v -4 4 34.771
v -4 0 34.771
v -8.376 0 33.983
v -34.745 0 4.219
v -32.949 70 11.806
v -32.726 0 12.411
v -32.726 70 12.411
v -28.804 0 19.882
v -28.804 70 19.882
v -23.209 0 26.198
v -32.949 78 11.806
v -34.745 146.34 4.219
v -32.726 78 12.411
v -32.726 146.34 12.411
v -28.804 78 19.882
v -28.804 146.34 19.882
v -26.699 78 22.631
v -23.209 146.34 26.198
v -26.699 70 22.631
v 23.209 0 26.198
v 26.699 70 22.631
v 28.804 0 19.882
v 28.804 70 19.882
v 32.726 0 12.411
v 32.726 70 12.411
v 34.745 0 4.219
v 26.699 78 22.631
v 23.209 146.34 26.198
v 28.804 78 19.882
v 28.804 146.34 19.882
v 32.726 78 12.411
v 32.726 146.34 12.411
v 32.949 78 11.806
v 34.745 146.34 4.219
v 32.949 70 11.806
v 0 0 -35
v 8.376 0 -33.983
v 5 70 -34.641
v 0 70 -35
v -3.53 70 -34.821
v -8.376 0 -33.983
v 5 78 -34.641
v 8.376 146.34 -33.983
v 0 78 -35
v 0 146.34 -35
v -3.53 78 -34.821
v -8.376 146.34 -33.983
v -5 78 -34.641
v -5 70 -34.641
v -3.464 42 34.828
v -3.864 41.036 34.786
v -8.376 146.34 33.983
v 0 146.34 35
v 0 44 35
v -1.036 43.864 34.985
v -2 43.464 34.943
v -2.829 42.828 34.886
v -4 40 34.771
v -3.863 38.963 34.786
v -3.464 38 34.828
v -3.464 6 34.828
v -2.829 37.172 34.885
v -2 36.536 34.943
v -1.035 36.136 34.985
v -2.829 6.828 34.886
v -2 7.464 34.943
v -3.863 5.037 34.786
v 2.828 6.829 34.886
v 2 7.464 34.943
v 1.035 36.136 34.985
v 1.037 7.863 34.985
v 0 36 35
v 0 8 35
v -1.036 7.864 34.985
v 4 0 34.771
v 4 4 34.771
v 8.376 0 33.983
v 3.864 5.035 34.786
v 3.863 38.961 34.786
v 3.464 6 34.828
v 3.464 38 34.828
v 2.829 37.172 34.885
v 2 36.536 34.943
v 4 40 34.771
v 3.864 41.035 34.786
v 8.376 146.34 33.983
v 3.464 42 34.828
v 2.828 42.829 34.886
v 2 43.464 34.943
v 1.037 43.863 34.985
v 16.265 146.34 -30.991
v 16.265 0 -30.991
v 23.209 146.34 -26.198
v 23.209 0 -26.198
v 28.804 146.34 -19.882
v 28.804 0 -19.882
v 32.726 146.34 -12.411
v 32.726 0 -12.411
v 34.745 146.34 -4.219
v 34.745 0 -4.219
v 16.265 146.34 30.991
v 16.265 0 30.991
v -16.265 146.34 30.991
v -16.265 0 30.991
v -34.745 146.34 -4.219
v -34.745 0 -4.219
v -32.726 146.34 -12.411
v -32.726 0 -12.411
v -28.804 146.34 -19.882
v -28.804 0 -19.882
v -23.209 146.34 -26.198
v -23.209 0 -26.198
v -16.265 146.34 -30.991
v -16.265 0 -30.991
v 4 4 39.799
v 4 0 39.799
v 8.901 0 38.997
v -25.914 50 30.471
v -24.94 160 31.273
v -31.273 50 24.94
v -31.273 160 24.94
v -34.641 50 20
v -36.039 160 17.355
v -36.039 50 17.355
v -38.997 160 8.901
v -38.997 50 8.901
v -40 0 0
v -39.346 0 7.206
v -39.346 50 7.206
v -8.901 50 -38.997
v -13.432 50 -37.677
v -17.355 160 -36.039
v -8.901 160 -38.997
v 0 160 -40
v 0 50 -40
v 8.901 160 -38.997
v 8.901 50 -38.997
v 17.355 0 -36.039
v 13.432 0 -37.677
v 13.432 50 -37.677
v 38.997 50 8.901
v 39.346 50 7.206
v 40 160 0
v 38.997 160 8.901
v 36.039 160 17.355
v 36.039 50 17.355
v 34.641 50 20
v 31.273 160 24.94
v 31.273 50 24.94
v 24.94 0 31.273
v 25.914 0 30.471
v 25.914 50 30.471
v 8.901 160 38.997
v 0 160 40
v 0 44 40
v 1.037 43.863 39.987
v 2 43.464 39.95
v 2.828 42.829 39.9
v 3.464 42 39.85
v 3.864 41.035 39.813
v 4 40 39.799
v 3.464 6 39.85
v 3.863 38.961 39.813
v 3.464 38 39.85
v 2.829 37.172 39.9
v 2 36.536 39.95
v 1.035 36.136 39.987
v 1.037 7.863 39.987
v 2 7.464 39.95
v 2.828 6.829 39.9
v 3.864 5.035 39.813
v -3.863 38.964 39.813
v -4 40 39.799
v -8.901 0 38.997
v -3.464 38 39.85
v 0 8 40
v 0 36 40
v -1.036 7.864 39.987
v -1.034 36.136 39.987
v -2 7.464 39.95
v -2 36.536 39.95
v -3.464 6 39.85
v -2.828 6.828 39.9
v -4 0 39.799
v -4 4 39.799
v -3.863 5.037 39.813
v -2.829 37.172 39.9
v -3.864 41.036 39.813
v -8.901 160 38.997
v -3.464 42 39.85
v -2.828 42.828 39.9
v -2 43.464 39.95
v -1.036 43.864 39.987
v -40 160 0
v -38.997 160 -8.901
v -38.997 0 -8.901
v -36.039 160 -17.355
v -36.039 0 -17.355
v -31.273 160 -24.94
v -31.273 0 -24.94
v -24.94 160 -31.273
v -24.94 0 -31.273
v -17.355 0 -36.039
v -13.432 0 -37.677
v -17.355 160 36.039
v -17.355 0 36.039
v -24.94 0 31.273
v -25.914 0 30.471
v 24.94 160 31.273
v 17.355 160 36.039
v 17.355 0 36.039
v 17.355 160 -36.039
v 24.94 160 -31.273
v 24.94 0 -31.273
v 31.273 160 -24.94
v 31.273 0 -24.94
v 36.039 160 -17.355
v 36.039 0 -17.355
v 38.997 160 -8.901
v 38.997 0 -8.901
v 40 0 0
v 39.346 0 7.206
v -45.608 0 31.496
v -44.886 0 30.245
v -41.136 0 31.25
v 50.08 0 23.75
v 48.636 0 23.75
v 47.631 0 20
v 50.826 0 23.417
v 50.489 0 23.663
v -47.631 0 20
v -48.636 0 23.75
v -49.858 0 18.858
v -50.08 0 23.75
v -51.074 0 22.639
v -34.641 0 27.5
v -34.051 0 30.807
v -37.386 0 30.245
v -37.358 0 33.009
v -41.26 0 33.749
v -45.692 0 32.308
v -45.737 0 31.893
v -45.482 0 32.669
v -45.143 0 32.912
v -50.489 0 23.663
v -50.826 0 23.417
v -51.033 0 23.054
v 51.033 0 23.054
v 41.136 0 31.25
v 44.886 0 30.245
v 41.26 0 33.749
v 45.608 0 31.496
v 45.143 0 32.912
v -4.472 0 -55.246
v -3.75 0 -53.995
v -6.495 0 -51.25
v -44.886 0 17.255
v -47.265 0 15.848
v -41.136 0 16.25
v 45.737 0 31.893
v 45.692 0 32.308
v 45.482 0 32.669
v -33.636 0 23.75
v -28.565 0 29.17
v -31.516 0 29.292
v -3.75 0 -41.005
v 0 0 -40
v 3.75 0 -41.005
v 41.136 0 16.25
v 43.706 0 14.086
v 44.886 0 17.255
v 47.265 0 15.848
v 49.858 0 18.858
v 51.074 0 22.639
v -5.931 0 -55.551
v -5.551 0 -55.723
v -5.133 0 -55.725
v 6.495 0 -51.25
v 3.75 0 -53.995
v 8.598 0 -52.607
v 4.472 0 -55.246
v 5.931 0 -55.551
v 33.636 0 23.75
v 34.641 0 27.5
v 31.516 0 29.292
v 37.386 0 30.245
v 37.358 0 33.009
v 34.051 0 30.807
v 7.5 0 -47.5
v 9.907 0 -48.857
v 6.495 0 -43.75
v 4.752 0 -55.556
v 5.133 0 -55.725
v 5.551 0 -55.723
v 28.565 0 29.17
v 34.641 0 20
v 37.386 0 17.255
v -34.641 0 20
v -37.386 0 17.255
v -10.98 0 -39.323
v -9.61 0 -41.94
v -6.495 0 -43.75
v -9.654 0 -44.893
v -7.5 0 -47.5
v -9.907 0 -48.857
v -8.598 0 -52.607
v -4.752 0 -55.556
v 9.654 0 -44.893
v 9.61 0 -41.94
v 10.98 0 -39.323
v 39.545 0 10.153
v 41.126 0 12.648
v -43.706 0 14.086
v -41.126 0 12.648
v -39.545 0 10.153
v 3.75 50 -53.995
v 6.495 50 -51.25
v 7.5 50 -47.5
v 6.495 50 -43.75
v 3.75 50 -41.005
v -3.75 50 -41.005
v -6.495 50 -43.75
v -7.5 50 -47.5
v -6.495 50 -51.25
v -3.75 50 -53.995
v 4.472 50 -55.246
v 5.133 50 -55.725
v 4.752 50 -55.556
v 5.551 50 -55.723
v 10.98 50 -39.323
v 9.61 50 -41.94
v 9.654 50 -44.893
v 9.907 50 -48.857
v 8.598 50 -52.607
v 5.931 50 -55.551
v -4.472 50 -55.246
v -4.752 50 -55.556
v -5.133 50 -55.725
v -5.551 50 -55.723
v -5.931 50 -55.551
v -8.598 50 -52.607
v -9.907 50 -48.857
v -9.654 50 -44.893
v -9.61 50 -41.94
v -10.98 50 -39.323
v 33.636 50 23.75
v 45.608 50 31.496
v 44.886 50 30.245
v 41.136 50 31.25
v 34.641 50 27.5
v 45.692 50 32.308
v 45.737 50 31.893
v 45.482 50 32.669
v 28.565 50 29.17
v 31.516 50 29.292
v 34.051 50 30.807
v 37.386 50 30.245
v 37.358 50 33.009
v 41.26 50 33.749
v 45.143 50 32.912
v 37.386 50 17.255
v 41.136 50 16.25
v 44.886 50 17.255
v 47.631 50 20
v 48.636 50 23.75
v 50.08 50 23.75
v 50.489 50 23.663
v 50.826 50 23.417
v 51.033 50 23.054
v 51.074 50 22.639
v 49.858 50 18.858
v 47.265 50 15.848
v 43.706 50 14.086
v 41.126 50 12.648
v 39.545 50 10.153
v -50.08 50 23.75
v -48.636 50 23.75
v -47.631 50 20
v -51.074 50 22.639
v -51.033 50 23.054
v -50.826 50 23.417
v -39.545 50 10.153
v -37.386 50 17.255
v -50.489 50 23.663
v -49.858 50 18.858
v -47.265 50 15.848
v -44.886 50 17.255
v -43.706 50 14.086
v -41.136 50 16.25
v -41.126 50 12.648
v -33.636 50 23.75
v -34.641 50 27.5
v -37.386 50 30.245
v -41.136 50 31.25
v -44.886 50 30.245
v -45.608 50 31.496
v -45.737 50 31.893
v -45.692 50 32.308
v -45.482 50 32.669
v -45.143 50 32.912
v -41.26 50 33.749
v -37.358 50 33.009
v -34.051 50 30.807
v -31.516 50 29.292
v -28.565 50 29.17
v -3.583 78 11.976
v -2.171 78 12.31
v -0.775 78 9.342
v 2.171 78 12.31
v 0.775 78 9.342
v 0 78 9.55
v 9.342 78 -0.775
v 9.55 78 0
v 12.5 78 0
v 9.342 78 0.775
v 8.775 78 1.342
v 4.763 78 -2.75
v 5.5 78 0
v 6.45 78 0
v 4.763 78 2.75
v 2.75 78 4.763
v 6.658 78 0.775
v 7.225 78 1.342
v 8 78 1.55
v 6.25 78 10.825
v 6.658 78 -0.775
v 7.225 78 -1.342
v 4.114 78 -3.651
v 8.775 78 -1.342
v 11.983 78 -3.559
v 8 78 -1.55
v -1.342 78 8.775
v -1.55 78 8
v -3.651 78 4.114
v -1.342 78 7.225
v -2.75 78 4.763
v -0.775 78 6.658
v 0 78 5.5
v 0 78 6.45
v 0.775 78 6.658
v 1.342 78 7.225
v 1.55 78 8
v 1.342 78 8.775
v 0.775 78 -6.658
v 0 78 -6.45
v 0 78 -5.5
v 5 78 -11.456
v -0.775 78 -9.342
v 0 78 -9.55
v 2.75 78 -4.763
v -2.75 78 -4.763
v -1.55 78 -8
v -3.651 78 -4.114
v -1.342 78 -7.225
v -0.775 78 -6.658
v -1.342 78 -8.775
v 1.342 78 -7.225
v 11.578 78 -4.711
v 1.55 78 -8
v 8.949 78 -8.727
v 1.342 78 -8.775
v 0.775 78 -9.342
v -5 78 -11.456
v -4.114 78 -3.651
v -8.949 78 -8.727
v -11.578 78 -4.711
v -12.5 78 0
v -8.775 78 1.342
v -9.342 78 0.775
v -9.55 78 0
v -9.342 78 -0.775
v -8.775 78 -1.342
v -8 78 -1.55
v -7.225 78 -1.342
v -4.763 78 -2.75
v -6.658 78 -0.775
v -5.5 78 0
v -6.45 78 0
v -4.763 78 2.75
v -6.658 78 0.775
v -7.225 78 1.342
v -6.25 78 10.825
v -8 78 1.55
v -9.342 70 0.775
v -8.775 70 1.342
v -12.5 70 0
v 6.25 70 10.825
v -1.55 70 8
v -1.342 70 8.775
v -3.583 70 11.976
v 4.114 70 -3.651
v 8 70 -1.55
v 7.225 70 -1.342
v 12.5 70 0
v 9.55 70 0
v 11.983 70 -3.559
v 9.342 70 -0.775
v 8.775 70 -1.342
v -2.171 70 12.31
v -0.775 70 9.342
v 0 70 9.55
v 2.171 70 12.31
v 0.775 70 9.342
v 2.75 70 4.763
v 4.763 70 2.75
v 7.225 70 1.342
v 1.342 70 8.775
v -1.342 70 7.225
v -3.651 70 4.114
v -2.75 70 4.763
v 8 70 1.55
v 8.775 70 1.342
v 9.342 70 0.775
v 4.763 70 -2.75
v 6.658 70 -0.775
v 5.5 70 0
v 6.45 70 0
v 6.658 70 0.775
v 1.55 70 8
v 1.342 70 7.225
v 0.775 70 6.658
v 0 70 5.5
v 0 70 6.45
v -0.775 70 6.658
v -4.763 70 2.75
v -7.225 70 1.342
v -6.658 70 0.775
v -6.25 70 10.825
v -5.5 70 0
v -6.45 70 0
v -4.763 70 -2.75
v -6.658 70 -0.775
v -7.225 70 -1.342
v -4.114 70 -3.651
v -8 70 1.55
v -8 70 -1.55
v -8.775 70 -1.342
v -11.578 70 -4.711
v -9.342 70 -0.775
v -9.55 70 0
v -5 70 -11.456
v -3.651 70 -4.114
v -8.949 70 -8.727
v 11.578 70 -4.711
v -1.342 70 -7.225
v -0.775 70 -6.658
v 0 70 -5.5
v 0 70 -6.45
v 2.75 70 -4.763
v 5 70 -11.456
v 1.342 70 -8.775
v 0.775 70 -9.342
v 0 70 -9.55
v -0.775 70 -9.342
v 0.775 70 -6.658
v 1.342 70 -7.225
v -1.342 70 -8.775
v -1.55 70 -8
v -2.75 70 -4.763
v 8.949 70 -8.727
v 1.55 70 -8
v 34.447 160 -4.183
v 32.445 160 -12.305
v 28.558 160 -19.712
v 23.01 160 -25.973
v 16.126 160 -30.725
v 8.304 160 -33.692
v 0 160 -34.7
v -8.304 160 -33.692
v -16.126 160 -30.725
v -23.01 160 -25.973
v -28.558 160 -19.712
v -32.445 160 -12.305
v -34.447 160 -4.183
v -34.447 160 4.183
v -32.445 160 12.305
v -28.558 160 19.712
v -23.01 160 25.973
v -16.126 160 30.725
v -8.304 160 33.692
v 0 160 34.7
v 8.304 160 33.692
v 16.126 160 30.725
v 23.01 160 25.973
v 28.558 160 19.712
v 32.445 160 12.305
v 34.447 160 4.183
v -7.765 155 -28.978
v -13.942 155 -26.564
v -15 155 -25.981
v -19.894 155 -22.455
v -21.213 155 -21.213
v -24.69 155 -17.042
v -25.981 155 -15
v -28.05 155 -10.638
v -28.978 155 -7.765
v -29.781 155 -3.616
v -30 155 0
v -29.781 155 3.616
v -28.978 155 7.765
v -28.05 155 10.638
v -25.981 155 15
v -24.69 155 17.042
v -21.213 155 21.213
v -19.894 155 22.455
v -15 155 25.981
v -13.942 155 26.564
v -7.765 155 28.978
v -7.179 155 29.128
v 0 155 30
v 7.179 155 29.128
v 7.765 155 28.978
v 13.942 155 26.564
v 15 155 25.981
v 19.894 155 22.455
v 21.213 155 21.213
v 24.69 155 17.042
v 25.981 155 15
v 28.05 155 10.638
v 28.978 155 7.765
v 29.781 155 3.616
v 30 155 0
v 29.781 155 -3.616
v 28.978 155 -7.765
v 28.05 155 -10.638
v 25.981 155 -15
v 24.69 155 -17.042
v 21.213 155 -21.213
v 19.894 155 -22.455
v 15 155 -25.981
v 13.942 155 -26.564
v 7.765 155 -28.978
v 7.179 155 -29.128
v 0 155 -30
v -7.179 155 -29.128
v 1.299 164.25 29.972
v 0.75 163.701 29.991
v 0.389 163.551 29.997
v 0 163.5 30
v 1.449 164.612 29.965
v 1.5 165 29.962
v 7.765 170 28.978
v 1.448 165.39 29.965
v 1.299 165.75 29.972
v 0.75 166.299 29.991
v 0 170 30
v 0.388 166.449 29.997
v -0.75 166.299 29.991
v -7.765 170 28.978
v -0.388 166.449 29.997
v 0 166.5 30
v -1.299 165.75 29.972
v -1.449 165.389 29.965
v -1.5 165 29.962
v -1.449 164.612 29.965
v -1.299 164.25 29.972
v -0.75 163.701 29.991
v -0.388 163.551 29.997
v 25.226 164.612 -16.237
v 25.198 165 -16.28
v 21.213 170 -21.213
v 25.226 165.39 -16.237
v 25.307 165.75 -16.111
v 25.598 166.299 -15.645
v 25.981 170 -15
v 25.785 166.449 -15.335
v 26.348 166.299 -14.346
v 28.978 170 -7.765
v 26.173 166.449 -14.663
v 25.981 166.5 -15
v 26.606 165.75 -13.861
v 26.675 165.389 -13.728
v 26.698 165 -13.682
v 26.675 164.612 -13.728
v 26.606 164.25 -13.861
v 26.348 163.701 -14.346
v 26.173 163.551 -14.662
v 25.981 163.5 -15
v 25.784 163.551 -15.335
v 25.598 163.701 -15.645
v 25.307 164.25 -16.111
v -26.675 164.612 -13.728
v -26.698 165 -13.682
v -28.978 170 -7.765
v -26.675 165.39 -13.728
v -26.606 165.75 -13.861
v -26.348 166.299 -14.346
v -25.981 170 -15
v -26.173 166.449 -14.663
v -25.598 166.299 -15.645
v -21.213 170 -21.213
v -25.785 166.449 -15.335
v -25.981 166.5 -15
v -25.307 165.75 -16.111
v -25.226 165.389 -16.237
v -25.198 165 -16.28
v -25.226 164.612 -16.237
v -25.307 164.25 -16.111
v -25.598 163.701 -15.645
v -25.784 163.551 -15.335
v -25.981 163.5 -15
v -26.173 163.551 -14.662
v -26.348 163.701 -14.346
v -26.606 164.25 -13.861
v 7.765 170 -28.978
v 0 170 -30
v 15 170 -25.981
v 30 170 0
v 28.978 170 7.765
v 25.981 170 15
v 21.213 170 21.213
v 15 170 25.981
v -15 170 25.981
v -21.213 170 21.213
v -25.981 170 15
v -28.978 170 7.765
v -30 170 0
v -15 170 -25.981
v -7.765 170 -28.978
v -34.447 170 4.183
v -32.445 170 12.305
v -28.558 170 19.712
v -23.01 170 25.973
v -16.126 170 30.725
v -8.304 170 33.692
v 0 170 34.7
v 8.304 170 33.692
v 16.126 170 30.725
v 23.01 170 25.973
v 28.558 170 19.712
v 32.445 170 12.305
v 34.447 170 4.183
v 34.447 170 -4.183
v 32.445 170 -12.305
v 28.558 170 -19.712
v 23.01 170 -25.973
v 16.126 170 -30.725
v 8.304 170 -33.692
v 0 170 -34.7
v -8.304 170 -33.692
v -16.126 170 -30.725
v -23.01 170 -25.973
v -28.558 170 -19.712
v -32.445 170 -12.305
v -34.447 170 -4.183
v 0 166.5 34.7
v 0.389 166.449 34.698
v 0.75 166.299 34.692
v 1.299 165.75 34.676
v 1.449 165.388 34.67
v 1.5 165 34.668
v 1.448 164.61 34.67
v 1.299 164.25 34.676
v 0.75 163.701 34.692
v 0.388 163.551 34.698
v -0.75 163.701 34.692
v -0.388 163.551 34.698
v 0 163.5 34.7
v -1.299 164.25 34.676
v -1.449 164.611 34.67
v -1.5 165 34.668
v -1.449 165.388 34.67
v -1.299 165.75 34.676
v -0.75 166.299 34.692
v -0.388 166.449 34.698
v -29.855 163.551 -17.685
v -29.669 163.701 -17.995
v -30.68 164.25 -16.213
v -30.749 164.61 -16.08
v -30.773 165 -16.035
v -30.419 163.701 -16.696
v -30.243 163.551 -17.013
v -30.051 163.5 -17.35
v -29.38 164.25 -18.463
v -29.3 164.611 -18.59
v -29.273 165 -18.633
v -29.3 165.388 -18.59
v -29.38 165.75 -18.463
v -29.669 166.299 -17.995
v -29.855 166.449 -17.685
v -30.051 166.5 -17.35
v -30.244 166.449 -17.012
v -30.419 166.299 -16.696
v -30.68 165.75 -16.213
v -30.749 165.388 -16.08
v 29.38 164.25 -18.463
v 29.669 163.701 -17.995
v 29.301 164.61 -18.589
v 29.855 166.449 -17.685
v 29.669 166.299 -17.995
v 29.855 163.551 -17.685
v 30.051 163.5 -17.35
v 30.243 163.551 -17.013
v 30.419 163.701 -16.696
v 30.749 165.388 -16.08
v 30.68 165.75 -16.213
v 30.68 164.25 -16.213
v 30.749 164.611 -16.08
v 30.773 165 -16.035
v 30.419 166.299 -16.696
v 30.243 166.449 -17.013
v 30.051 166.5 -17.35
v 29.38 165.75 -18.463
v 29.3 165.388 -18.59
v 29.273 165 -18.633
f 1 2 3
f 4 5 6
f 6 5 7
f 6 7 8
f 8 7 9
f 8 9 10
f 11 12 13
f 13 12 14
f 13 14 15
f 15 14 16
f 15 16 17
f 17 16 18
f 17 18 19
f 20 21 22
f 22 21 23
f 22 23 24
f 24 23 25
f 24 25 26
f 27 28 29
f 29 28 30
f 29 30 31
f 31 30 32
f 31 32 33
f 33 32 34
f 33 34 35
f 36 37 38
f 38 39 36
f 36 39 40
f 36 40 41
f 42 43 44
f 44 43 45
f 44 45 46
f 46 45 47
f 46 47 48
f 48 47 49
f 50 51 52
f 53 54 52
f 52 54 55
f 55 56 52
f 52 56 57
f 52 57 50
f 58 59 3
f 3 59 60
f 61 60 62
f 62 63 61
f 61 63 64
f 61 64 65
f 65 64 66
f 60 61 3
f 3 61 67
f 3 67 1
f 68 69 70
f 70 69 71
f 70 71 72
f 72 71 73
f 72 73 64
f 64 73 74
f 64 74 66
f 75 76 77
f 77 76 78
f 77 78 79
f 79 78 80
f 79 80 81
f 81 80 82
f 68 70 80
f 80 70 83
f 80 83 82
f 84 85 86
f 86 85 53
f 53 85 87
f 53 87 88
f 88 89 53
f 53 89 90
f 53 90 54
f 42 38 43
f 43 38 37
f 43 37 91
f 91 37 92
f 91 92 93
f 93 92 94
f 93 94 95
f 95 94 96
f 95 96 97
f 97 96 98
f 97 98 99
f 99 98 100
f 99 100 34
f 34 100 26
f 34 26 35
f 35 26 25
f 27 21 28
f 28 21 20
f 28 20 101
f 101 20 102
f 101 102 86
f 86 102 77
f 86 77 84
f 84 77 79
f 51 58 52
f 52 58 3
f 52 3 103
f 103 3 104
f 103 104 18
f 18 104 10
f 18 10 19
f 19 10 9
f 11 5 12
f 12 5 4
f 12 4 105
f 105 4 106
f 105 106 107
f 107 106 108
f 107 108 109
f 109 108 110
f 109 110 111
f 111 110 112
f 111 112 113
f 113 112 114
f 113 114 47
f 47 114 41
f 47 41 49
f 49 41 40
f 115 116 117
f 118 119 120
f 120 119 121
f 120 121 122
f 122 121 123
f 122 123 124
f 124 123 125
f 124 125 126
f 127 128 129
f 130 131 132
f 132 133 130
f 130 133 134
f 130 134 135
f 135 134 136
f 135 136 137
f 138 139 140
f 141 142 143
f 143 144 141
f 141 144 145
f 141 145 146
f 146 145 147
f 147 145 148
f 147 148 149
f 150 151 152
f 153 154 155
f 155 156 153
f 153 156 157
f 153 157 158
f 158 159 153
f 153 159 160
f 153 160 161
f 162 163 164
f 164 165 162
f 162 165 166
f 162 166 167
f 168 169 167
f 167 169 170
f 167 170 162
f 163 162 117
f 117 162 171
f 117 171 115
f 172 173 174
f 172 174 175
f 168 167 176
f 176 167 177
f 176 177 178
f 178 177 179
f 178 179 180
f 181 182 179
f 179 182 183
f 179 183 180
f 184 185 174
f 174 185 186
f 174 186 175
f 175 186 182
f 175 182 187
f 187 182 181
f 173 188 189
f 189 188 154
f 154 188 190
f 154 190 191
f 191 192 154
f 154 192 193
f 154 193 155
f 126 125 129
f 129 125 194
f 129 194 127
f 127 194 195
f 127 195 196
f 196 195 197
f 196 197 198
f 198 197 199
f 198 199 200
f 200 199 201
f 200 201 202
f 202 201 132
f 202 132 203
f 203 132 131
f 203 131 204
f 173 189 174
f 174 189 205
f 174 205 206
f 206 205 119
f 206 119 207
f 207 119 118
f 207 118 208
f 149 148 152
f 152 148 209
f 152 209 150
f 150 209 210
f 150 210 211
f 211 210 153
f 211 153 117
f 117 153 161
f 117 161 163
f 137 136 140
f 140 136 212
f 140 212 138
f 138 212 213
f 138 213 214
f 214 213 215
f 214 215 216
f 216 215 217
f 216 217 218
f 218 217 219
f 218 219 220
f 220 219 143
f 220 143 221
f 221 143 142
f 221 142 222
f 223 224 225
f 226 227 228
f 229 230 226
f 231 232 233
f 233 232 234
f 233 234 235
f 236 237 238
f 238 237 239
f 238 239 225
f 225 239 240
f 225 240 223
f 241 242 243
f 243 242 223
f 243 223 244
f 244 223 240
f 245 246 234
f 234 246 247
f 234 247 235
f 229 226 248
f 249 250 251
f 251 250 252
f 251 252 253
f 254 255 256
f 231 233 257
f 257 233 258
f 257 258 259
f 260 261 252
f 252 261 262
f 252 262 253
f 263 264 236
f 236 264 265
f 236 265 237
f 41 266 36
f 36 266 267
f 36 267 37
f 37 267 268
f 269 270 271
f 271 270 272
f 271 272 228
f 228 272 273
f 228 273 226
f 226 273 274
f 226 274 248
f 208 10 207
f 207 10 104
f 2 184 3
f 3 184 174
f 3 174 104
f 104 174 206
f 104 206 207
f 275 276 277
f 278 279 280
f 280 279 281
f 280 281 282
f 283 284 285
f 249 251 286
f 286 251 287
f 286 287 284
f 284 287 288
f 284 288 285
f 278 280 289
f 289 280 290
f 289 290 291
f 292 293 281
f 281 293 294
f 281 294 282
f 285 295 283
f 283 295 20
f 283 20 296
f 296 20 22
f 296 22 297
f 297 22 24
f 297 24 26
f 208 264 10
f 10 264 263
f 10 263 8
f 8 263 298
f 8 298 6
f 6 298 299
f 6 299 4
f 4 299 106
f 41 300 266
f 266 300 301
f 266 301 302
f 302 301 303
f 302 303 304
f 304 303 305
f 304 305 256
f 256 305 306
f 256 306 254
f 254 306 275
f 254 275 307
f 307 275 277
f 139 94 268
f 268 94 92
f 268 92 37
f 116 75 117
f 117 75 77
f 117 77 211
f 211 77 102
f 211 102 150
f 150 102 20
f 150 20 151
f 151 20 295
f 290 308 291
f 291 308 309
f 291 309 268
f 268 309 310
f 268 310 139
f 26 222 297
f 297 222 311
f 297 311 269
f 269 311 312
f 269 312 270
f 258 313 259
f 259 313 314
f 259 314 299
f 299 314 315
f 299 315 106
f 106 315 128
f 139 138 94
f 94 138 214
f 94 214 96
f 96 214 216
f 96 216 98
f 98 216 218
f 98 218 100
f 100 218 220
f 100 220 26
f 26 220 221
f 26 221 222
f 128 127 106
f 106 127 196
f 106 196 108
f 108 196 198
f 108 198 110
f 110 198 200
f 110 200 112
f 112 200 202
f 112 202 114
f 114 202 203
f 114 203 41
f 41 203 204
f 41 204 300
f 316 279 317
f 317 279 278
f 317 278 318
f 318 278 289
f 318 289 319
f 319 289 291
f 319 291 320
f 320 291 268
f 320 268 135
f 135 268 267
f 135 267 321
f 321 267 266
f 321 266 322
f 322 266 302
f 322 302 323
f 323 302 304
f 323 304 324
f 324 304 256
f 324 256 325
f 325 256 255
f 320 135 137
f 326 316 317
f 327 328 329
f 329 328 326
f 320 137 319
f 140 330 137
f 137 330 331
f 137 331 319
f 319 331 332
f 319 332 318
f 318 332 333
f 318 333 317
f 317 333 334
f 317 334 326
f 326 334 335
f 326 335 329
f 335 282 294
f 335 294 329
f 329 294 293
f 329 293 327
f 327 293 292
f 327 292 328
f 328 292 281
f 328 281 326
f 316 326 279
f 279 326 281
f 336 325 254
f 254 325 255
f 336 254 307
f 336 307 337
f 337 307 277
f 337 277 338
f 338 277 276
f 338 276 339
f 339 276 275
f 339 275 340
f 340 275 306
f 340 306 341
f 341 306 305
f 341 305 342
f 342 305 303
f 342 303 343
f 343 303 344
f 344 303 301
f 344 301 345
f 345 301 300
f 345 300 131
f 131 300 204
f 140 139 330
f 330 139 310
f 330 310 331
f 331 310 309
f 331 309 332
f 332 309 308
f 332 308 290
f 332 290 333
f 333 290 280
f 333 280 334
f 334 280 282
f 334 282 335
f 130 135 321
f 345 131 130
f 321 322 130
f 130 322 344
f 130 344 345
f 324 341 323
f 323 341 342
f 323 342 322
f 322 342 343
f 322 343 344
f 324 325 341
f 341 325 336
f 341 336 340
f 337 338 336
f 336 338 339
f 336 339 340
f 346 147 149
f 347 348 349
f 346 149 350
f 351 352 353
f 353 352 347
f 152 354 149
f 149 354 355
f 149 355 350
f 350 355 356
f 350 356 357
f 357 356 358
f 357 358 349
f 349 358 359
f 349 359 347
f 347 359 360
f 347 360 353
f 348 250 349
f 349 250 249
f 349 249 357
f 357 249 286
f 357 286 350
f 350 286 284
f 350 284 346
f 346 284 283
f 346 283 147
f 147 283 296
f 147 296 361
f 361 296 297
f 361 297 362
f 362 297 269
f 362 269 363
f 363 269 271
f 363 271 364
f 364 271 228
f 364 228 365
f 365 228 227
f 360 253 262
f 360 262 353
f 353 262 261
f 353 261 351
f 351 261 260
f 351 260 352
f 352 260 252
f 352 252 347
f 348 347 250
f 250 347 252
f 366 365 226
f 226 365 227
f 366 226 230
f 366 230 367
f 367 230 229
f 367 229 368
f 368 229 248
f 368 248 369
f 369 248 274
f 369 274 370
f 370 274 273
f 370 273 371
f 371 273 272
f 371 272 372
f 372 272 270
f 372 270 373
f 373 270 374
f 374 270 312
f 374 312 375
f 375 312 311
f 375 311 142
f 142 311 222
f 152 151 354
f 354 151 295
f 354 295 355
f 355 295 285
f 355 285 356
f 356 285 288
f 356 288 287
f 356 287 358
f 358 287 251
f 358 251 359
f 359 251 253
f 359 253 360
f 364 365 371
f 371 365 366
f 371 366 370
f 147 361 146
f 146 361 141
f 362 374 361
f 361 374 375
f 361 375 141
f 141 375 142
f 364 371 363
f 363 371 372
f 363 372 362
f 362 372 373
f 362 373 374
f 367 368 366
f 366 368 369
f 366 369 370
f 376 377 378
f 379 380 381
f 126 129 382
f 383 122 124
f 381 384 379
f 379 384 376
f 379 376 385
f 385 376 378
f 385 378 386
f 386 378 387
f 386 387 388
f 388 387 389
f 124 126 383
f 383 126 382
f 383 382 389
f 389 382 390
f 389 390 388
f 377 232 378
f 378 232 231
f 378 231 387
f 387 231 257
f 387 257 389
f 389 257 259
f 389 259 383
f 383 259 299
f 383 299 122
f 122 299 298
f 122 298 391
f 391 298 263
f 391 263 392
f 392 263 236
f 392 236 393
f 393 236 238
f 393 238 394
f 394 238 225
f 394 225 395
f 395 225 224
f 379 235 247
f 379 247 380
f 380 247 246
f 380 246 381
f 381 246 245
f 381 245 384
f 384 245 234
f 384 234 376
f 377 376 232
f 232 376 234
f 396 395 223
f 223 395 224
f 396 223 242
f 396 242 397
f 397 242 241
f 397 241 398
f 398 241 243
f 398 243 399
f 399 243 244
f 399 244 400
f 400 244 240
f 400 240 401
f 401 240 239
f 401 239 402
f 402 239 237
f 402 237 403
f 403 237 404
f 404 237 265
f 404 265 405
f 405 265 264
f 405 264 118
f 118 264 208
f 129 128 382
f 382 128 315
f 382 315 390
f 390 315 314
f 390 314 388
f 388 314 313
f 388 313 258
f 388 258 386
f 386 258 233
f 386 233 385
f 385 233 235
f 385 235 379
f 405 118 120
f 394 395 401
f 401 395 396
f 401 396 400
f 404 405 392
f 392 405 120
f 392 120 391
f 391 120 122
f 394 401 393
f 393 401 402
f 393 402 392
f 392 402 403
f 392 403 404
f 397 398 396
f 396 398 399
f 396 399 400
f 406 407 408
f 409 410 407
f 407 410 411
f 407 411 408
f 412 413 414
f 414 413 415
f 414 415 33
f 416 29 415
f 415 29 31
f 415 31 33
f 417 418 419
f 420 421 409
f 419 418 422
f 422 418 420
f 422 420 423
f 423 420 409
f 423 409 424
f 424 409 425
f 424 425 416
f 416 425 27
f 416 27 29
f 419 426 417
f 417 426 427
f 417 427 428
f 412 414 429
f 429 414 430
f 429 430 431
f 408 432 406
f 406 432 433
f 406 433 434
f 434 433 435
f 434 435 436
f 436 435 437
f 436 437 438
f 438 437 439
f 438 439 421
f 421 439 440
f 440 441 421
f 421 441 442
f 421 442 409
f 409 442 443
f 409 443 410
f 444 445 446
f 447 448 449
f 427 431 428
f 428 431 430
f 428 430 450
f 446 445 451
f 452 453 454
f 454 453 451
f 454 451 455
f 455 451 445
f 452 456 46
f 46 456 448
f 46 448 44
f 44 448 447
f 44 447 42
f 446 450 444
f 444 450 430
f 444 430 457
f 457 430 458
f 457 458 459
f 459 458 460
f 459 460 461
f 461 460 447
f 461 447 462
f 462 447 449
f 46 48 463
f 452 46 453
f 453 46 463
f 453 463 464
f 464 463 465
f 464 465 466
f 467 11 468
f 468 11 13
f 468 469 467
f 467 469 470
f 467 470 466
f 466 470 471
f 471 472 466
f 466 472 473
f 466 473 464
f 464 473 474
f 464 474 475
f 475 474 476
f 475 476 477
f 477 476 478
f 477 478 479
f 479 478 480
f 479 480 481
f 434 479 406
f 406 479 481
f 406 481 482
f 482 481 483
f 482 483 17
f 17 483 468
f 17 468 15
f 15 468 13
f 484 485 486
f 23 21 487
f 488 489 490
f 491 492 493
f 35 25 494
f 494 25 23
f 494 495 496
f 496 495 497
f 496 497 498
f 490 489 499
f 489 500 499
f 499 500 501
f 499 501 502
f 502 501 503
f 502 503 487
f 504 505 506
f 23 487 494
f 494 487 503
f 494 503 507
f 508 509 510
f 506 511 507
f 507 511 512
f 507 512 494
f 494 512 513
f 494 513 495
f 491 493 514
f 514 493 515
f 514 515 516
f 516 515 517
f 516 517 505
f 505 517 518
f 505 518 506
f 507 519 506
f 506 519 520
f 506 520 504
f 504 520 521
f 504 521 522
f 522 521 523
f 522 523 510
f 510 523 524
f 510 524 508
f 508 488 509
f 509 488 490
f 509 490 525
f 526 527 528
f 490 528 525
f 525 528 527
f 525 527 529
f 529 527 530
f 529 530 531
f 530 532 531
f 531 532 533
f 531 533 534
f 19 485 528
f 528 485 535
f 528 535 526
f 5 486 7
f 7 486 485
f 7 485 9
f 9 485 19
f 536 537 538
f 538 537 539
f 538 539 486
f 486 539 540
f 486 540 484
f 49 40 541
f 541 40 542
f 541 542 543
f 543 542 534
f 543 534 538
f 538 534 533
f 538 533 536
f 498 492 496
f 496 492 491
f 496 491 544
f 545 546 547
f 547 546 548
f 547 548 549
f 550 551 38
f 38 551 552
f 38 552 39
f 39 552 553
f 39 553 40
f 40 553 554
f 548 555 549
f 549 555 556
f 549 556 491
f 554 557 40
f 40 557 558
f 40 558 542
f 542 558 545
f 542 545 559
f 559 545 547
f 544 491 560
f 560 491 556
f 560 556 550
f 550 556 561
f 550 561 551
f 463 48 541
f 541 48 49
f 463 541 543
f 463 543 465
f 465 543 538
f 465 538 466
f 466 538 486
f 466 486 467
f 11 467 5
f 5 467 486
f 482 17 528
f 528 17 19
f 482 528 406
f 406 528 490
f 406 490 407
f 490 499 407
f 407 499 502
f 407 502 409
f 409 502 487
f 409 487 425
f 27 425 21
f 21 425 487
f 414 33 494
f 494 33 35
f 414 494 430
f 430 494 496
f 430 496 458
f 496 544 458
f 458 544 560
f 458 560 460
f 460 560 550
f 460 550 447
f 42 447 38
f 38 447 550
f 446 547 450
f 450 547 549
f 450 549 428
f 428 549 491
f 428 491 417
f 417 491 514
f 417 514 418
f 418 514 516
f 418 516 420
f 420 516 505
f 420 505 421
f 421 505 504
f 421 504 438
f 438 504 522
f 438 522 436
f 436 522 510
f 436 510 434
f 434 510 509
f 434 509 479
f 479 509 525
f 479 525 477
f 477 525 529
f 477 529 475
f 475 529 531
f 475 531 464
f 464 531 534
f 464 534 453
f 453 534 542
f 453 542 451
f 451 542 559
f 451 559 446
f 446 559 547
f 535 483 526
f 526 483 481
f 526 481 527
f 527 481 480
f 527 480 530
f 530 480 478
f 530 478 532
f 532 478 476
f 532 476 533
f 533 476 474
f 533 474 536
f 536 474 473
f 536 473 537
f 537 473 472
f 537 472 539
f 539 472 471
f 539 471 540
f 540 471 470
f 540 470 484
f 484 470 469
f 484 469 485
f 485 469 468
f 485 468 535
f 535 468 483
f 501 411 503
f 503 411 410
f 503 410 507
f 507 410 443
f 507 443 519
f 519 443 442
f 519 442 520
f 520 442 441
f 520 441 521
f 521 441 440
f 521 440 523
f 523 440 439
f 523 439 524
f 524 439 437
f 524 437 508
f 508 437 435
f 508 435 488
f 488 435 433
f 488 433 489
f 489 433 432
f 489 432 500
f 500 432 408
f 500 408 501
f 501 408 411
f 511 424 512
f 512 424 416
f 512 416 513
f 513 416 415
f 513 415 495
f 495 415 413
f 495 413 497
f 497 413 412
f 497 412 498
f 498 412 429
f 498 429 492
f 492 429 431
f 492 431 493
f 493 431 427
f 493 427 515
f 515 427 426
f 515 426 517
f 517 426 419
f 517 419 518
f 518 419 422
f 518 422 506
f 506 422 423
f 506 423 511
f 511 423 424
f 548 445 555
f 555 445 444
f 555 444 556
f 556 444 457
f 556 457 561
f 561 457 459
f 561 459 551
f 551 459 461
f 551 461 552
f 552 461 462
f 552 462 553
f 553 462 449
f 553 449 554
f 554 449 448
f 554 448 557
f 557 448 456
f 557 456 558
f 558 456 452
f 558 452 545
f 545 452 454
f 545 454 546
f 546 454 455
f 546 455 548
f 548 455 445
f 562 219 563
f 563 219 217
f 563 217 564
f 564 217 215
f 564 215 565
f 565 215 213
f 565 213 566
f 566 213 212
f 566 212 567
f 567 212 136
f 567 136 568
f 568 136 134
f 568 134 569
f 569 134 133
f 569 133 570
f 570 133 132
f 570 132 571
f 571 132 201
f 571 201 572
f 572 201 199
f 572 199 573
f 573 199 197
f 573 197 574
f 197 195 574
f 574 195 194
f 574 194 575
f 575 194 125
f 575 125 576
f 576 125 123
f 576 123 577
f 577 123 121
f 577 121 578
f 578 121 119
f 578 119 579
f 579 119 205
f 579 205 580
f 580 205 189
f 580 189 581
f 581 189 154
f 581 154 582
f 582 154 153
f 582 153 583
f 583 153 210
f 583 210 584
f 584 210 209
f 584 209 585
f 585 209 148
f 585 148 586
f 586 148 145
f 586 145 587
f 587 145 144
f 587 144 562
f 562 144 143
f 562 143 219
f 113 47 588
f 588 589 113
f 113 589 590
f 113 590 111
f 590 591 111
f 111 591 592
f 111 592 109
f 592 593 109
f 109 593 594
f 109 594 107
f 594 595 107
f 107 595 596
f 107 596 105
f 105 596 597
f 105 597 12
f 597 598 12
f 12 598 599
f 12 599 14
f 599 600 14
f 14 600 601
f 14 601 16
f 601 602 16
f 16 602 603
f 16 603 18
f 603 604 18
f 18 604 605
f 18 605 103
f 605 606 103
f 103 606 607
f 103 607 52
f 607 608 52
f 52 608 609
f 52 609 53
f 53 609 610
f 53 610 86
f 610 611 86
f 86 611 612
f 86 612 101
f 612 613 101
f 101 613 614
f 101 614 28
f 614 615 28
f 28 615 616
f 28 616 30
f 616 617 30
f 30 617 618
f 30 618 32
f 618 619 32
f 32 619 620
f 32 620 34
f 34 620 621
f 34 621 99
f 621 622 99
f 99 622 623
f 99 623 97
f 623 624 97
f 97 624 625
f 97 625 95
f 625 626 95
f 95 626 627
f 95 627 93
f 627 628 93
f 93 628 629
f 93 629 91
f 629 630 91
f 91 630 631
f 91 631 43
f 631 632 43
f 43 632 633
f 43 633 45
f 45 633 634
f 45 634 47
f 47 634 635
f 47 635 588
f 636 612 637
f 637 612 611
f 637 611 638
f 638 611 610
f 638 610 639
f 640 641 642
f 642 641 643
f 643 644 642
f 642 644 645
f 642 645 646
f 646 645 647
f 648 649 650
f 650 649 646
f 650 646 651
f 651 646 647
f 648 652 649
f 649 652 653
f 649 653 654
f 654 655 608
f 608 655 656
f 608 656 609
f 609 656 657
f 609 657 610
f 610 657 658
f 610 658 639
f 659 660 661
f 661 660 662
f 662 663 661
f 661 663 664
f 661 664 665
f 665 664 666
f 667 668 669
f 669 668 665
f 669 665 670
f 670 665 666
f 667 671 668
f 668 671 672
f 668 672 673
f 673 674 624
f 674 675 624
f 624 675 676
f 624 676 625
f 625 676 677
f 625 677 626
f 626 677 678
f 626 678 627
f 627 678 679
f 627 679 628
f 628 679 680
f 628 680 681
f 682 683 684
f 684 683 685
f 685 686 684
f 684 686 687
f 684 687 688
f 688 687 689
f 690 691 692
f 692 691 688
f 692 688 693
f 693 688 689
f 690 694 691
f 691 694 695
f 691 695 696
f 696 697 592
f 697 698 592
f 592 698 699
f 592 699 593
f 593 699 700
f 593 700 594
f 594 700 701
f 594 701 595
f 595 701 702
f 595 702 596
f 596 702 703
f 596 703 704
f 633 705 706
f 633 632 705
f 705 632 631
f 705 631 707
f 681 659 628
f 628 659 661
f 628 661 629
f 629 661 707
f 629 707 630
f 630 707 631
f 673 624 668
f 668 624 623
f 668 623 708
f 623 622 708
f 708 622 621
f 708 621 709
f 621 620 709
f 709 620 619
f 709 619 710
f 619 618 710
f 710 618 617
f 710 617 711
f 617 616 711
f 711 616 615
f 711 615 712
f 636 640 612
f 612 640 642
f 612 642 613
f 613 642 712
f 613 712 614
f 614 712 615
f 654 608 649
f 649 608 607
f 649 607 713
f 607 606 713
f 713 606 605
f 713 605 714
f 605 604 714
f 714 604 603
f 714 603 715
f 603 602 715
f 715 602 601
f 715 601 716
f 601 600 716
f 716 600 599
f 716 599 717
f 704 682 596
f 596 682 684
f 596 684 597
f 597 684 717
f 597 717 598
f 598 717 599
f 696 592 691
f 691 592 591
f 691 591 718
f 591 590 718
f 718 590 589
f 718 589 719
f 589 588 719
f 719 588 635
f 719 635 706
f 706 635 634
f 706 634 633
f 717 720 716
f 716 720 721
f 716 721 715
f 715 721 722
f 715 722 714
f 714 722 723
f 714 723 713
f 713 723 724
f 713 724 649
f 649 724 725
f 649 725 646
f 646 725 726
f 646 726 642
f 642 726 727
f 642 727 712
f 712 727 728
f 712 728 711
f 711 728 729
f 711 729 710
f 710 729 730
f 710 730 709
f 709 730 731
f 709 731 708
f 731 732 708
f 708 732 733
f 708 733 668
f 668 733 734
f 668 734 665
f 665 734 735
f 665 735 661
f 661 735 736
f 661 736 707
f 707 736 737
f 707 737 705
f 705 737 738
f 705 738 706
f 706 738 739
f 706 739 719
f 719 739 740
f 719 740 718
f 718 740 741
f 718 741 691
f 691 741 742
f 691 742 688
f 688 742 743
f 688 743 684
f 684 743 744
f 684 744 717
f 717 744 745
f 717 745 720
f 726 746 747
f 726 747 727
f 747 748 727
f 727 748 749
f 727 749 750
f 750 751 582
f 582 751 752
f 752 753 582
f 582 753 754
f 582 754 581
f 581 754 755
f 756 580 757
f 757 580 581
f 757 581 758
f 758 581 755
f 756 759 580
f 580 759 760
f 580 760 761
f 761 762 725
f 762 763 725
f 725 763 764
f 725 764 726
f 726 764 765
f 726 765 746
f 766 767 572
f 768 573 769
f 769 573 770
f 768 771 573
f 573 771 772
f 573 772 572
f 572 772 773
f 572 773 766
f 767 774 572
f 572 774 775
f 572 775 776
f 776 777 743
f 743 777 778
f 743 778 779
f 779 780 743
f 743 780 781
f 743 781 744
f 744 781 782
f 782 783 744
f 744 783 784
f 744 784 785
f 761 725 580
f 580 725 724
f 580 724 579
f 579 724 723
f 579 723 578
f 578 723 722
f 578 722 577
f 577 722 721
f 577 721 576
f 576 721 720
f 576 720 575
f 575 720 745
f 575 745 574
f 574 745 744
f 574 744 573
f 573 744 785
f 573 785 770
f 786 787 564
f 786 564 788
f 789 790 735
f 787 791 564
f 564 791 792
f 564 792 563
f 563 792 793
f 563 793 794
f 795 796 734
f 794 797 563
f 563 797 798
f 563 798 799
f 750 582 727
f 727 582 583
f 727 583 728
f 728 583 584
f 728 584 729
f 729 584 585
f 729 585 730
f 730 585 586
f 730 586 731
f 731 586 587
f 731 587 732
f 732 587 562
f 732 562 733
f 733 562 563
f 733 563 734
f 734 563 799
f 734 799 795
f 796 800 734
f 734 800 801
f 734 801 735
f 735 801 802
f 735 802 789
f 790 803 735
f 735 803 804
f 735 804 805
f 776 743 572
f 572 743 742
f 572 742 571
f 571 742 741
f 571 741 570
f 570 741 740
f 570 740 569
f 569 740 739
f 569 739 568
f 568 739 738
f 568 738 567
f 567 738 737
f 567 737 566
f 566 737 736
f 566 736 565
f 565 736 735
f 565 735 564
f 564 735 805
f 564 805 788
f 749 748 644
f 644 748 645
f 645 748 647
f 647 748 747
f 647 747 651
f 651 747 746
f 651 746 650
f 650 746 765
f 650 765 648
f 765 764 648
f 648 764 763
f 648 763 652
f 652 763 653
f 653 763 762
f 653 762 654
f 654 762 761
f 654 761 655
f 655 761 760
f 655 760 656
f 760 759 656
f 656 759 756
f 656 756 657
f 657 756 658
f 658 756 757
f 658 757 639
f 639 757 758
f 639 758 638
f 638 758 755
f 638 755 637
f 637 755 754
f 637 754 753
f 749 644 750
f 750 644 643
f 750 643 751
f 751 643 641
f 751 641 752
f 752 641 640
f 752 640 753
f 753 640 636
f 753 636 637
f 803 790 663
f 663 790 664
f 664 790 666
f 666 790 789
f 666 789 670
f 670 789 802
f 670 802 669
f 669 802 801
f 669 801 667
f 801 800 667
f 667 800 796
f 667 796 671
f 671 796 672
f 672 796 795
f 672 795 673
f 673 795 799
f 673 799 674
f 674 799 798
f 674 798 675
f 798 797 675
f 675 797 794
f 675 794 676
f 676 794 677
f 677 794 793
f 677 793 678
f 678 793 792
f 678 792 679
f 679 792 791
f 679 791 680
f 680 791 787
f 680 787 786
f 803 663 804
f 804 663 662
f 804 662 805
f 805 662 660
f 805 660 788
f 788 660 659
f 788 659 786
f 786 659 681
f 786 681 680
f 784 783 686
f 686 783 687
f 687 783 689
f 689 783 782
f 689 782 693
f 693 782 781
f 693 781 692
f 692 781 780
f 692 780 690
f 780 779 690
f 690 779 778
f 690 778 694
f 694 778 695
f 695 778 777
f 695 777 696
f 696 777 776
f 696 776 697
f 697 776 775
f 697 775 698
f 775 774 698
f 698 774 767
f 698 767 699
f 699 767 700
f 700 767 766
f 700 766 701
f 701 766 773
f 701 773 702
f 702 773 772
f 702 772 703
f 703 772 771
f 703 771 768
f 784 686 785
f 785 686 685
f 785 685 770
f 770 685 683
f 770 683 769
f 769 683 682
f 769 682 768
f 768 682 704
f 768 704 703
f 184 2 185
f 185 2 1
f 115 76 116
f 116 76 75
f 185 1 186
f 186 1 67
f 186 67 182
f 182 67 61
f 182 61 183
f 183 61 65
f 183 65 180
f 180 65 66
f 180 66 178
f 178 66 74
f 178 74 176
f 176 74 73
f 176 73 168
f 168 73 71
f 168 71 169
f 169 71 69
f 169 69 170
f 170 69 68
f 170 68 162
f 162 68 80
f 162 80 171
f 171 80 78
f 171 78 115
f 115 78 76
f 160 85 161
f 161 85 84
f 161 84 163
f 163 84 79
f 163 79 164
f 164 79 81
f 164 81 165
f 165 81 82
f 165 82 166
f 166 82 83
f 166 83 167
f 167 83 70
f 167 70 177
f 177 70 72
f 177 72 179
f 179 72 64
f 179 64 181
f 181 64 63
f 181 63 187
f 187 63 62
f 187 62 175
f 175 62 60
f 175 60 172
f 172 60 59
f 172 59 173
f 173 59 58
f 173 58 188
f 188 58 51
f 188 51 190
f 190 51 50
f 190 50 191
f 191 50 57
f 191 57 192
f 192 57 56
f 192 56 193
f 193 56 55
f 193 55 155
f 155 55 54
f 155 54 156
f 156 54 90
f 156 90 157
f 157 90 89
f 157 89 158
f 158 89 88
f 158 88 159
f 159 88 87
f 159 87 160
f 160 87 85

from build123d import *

# Parameters (mm, degrees)
SKETCH1_R               = 40
SKETCH1_R_2             = 35
BOSS_EXTRUDE1_DEPTH     = 180
BOSS_EXTRUDE2_DEPTH     = 50
SKETCH6_R               = 5.5
BOSS_EXTRUDE3_DEPTH     = 8
CUT_EXTRUDE1_REACH      = 154.121
SKETCH7_R               = 1.55
CUT_EXTRUDE2_START      = -50
SKETCH9_R               = 40
CUT_EXTRUDE2_DEPTH      = 50
CUT_EXTRUDE3_REACH      = 203.684
CUT_EXTRUDE3_END_RADIUS = 30
SKETCH11_R              = 1.5
CIRPATTERN1_COUNT       = 3
CUT_EXTRUDE4_REACH      = 203.684
CUT_EXTRUDE4_END_RADIUS = 35
SKETCH12_R              = 4


with BuildPart() as part:
    # Sketch1 → Boss-Extrude1 (new body)
    with BuildSketch(Plane(origin=(0, 0, 0), x_dir=(1, 0, 0), z_dir=(0, 1, 0))):
        with Locations(Location((0, 0, 0), (0, 0, 90))):
            Circle(SKETCH1_R)
        with Locations(Location((0, 0, 0), (0, 0, 90))):
            Circle(SKETCH1_R_2, mode=Mode.SUBTRACT)
    extrude(amount=BOSS_EXTRUDE1_DEPTH)

    # Sketch3 → Revolve1 (revolve)
    with BuildSketch(Plane(origin=(0, 0, 0), x_dir=(0, 0, -1), z_dir=(1, 0, 0)), mode=Mode.PRIVATE) as revolve1_sk:
        with BuildLine():
            Line((-35, 180), (-40, 180))
            Line((-40, 180), (-40, 185))
            add(Edge.make_bspline(
                [(-20, 210), (-35.448934618, 201.981430701), (-40, 185)],
                knots=[0, 0, 0, 1, 1, 1], degree=2))
            Line((-20, 210), (0, 210))
            Line((0, 210), (0, 202.928932188))
            Line((0, 202.928932188), (-20, 202.928932188))
            add(Edge.make_bspline(
                [(-20, 202.928932188), (-32.989454859, 194.577869332), (-35, 180)],
                knots=[0, 0, 0, 1, 1, 1], degree=2))
        make_face()
    revolve(revolve1_sk.sketch.rotate(Axis((0, -20.154872571, 0), (0, 1, 0)), 180), axis=Axis((0, -20.154872571, 0), (0, 1, 0)))

    # Sketch4 → Boss-Extrude2 (add)
    with BuildSketch(Plane(origin=(0, 0, 0), x_dir=(1, 0, 0), z_dir=(0, 1, 0))):
        with BuildLine():
            Line((4.472135955, 55.245966692), (3.75, 53.995190528))
            ThreePointArc((3.75, 53.995190528), (0, 40), (-3.75, 53.995190528))
            Line((-3.75, 53.995190528), (-4.472135955, 55.245966692))
            ThreePointArc((-4.472135955, 55.245966692), (-5.133489086, 55.72479725), (-5.931290399, 55.551074103))
            ThreePointArc((-5.931290399, 55.551074103), (-9.440614698, 50.797695275), (-9.654223492, 44.893092105))
            ThreePointArc((-9.654223492, 44.893092105), (-10.13118194, 40.546025245), (-13.431963119, 37.677345538))
            Line((-13.431963119, 37.677345538), (13.431963119, 37.677345538))
            ThreePointArc((13.431963119, 37.677345538), (10.13118194, 40.546025245), (9.654223492, 44.893092105))
            ThreePointArc((9.654223492, 44.893092105), (9.440614698, 50.797695275), (5.931290399, 55.551074103))
            ThreePointArc((5.931290399, 55.551074103), (5.133489086, 55.72479725), (4.472135955, 55.245966692))
        make_face()
        with BuildLine():
            Line((45.608342635, -31.495966692), (44.88620668, -30.245190528))
            ThreePointArc((44.88620668, -30.245190528), (34.641016151, -20), (48.63620668, -23.75))
            Line((48.63620668, -23.75), (50.08047859, -23.75))
            ThreePointArc((50.08047859, -23.75), (50.825834582, -23.416666667), (51.07428658, -22.638888889))
            ThreePointArc((51.07428658, -22.638888889), (48.712401911, -17.223035482), (43.705669963, -14.085743255))
            ThreePointArc((43.705669963, -14.085743255), (40.179478855, -11.499151692), (39.345519942, -7.206251485))
            Line((39.345519942, -7.206251485), (25.913556823, -30.471094053))
            ThreePointArc((25.913556823, -30.471094053), (30.048296914, -29.046873553), (34.051446472, -30.80734885))
            ThreePointArc((34.051446472, -30.80734885), (39.271787213, -33.574659793), (45.142996181, -32.912185214))
            ThreePointArc((45.142996181, -32.912185214), (45.692345496, -32.308130583), (45.608342635, -31.495966692))
        make_face()
        with BuildLine():
            Line((-50.08047859, -23.75), (-48.63620668, -23.75))
            ThreePointArc((-48.63620668, -23.75), (-34.641016151, -20), (-44.88620668, -30.245190528))
            Line((-44.88620668, -30.245190528), (-45.608342635, -31.495966692))
            ThreePointArc((-45.608342635, -31.495966692), (-45.692345496, -32.308130583), (-45.142996181, -32.912185214))
            ThreePointArc((-45.142996181, -32.912185214), (-39.271787213, -33.574659793), (-34.051446472, -30.80734885))
            ThreePointArc((-34.051446472, -30.80734885), (-30.048296914, -29.046873553), (-25.913556823, -30.471094053))
            Line((-25.913556823, -30.471094053), (-39.345519942, -7.206251485))
            ThreePointArc((-39.345519942, -7.206251485), (-40.179478855, -11.499151692), (-43.705669963, -14.085743255))
            ThreePointArc((-43.705669963, -14.085743255), (-48.712401911, -17.223035482), (-51.07428658, -22.638888889))
            ThreePointArc((-51.07428658, -22.638888889), (-50.825834582, -23.416666667), (-50.08047859, -23.75))
        make_face()
    extrude(amount=BOSS_EXTRUDE2_DEPTH)

    # Sketch6 → Boss-Extrude3 (add)
    with BuildSketch(Plane(origin=(0, 70, 0), x_dir=(1, 0, 0), z_dir=(0, 1, 0))):
        with BuildLine():
            Line((-5, 34.641016151), (-5, 11.456439237))
            ThreePointArc((-5, 11.456439237), (-10.458250332, 6.846531969), (-12.5, 0))
            Line((-12.5, 0), (-32.948700726, -11.806062869))
            ThreePointArc((-32.948700726, -11.806062869), (-30.310889132, -17.5), (-26.698700726, -22.631380416))
            Line((-26.698700726, -22.631380416), (-6.25, -10.825317547))
            ThreePointArc((-6.25, -10.825317547), (0, -12.5), (6.25, -10.825317547))
            Line((6.25, -10.825317547), (26.698700726, -22.631380416))
            ThreePointArc((26.698700726, -22.631380416), (30.310889132, -17.5), (32.948700726, -11.806062869))
            Line((32.948700726, -11.806062869), (12.5, 0))
            ThreePointArc((12.5, 0), (10.458250332, 6.846531969), (5, 11.456439237))
            Line((5, 11.456439237), (5, 34.641016151))
            ThreePointArc((5, 34.641016151), (0, 35), (-5, 34.641016151))
        make_face()
        with Locations(Location((0, 0, 0), (0, 0, 270))):
            Circle(SKETCH6_R, mode=Mode.SUBTRACT)
    extrude(amount=BOSS_EXTRUDE3_DEPTH)

    # Sketch7 → Cut-Extrude1 (cut, up to next)
    with BuildSketch(Plane(origin=(0, 78, 0), x_dir=(1, 0, 0), z_dir=(0, 1, 0)), mode=Mode.PRIVATE) as cut_extrude1_sk1:
        with Locations(Location((0, 8, 0), (0, 0, 270))):
            Circle(SKETCH7_R)
    cut_extrude1_tool1 = extrude(cut_extrude1_sk1.sketch, amount=-CUT_EXTRUDE1_REACH, mode=Mode.PRIVATE) & part.part
    # Sketch7 → Cut-Extrude1 (cut, up to next)
    with BuildSketch(Plane(origin=(0, 78, 0), x_dir=(1, 0, 0), z_dir=(0, 1, 0)), mode=Mode.PRIVATE) as cut_extrude1_sk2:
        with Locations(Location((8, 0, 0), (0, 0, 270))):
            Circle(SKETCH7_R)
    cut_extrude1_tool2 = extrude(cut_extrude1_sk2.sketch, amount=-CUT_EXTRUDE1_REACH, mode=Mode.PRIVATE) & part.part
    # Sketch7 → Cut-Extrude1 (cut, up to next)
    with BuildSketch(Plane(origin=(0, 78, 0), x_dir=(1, 0, 0), z_dir=(0, 1, 0)), mode=Mode.PRIVATE) as cut_extrude1_sk3:
        with Locations(Location((0, -8, 0), (0, 0, 270))):
            Circle(SKETCH7_R)
    cut_extrude1_tool3 = extrude(cut_extrude1_sk3.sketch, amount=-CUT_EXTRUDE1_REACH, mode=Mode.PRIVATE) & part.part
    # Sketch7 → Cut-Extrude1 (cut, up to next)
    with BuildSketch(Plane(origin=(0, 78, 0), x_dir=(1, 0, 0), z_dir=(0, 1, 0)), mode=Mode.PRIVATE) as cut_extrude1_sk4:
        with Locations(Location((-8, 0, 0), (0, 0, 270))):
            Circle(SKETCH7_R)
    cut_extrude1_tool4 = extrude(cut_extrude1_sk4.sketch, amount=-CUT_EXTRUDE1_REACH, mode=Mode.PRIVATE) & part.part
    add(cut_extrude1_tool1.solids().sort_by_distance((0, 78, -8))[0], mode=Mode.SUBTRACT)
    add(cut_extrude1_tool2.solids().sort_by_distance((8, 78, 0))[0], mode=Mode.SUBTRACT)
    add(cut_extrude1_tool3.solids().sort_by_distance((0, 78, 8))[0], mode=Mode.SUBTRACT)
    add(cut_extrude1_tool4.solids().sort_by_distance((-8, 78, 0))[0], mode=Mode.SUBTRACT)

    # Sketch9 → Cut-Extrude2 (cut)
    with BuildSketch(Plane(origin=(0, 210, 0), x_dir=(1, 0, 0), z_dir=(0, 1, 0)).offset(CUT_EXTRUDE2_START)):
        with Locations(Location((0, 0, 0), (0, 0, 90))):
            Circle(SKETCH9_R)
    extrude(amount=CUT_EXTRUDE2_DEPTH, mode=Mode.SUBTRACT)

    # Sketch10 → Revolve2 (revolve)
    with BuildSketch(Plane.XY, mode=Mode.PRIVATE) as revolve2_sk:
        Polygon((-35, 146.339745962), (-30, 155), (-30, 170), (-34.85, 170), (-34.85, 160), (-35, 160), align=None)
    revolve(revolve2_sk.sketch.rotate(Axis((0, 0, 0), (0, 1, 0)), 270), axis=Axis((0, 0, 0), (0, 1, 0)))

    # Cut-Extrude3: up to this cylinder (the profile starts outside it)
    cut_extrude3_end = Plane(origin=(0, 165, 0), z_dir=(0, -1, 0)) * Cylinder(CUT_EXTRUDE3_END_RADIUS, 468.368, mode=Mode.PRIVATE)
    # Sketch11 → Cut-Extrude3 (cut, up to the surface)
    with BuildSketch(Plane.XY.offset(40), mode=Mode.PRIVATE) as cut_extrude3_sk1:
        with Locations((0, 165)):
            Circle(SKETCH11_R)
    cut_extrude3_tool1 = extrude(cut_extrude3_sk1.sketch, amount=-CUT_EXTRUDE3_REACH, mode=Mode.PRIVATE) - cut_extrude3_end
    cut_extrude3 = cut_extrude3_tool1.solids().sort_by_distance((0, 165, 40))[0]
    add(cut_extrude3, mode=Mode.SUBTRACT)

    # CirPattern1: Cut-Extrude3 ×3 about axis
    cirpattern1_axis = Axis((0, 170, 0), (0, -1, 0))
    for i in range(1, CIRPATTERN1_COUNT):
        add(cut_extrude3.rotate(cirpattern1_axis, i * 360 / CIRPATTERN1_COUNT), mode=Mode.SUBTRACT)

    # Cut-Extrude4: up to this cylinder (the profile starts outside it)
    cut_extrude4_end = Plane(origin=(0, 21.8133005, 0), z_dir=(0, -1, 0)) * Cylinder(CUT_EXTRUDE4_END_RADIUS, 514.741399, mode=Mode.PRIVATE)
    # Sketch12 → Cut-Extrude4 (cut, up to the surface)
    with BuildSketch(Plane.XY.offset(40), mode=Mode.PRIVATE) as cut_extrude4_sk1:
        with Locations((0, 40)):
            Circle(SKETCH12_R)
    cut_extrude4_tool1 = extrude(cut_extrude4_sk1.sketch, amount=-CUT_EXTRUDE4_REACH, mode=Mode.PRIVATE) - cut_extrude4_end
    add(cut_extrude4_tool1.solids().sort_by_distance((0, 40, 40))[0], mode=Mode.SUBTRACT)
    # Sketch12 → Cut-Extrude4 (cut, up to the surface)
    with BuildSketch(Plane.XY.offset(40), mode=Mode.PRIVATE) as cut_extrude4_sk2:
        with BuildLine():
            Line((-4, 0), (4, 0))
            Line((4, 0), (4, 4))
            ThreePointArc((4, 4), (0, 8), (-4, 4))
            Line((-4, 4), (-4, 0))
        make_face()
    cut_extrude4_tool2 = extrude(cut_extrude4_sk2.sketch, amount=-CUT_EXTRUDE4_REACH, mode=Mode.PRIVATE) - cut_extrude4_end
    add(cut_extrude4_tool2.solids().sort_by_distance((0, 3.626601, 40))[0], mode=Mode.SUBTRACT)


solid = part.part
